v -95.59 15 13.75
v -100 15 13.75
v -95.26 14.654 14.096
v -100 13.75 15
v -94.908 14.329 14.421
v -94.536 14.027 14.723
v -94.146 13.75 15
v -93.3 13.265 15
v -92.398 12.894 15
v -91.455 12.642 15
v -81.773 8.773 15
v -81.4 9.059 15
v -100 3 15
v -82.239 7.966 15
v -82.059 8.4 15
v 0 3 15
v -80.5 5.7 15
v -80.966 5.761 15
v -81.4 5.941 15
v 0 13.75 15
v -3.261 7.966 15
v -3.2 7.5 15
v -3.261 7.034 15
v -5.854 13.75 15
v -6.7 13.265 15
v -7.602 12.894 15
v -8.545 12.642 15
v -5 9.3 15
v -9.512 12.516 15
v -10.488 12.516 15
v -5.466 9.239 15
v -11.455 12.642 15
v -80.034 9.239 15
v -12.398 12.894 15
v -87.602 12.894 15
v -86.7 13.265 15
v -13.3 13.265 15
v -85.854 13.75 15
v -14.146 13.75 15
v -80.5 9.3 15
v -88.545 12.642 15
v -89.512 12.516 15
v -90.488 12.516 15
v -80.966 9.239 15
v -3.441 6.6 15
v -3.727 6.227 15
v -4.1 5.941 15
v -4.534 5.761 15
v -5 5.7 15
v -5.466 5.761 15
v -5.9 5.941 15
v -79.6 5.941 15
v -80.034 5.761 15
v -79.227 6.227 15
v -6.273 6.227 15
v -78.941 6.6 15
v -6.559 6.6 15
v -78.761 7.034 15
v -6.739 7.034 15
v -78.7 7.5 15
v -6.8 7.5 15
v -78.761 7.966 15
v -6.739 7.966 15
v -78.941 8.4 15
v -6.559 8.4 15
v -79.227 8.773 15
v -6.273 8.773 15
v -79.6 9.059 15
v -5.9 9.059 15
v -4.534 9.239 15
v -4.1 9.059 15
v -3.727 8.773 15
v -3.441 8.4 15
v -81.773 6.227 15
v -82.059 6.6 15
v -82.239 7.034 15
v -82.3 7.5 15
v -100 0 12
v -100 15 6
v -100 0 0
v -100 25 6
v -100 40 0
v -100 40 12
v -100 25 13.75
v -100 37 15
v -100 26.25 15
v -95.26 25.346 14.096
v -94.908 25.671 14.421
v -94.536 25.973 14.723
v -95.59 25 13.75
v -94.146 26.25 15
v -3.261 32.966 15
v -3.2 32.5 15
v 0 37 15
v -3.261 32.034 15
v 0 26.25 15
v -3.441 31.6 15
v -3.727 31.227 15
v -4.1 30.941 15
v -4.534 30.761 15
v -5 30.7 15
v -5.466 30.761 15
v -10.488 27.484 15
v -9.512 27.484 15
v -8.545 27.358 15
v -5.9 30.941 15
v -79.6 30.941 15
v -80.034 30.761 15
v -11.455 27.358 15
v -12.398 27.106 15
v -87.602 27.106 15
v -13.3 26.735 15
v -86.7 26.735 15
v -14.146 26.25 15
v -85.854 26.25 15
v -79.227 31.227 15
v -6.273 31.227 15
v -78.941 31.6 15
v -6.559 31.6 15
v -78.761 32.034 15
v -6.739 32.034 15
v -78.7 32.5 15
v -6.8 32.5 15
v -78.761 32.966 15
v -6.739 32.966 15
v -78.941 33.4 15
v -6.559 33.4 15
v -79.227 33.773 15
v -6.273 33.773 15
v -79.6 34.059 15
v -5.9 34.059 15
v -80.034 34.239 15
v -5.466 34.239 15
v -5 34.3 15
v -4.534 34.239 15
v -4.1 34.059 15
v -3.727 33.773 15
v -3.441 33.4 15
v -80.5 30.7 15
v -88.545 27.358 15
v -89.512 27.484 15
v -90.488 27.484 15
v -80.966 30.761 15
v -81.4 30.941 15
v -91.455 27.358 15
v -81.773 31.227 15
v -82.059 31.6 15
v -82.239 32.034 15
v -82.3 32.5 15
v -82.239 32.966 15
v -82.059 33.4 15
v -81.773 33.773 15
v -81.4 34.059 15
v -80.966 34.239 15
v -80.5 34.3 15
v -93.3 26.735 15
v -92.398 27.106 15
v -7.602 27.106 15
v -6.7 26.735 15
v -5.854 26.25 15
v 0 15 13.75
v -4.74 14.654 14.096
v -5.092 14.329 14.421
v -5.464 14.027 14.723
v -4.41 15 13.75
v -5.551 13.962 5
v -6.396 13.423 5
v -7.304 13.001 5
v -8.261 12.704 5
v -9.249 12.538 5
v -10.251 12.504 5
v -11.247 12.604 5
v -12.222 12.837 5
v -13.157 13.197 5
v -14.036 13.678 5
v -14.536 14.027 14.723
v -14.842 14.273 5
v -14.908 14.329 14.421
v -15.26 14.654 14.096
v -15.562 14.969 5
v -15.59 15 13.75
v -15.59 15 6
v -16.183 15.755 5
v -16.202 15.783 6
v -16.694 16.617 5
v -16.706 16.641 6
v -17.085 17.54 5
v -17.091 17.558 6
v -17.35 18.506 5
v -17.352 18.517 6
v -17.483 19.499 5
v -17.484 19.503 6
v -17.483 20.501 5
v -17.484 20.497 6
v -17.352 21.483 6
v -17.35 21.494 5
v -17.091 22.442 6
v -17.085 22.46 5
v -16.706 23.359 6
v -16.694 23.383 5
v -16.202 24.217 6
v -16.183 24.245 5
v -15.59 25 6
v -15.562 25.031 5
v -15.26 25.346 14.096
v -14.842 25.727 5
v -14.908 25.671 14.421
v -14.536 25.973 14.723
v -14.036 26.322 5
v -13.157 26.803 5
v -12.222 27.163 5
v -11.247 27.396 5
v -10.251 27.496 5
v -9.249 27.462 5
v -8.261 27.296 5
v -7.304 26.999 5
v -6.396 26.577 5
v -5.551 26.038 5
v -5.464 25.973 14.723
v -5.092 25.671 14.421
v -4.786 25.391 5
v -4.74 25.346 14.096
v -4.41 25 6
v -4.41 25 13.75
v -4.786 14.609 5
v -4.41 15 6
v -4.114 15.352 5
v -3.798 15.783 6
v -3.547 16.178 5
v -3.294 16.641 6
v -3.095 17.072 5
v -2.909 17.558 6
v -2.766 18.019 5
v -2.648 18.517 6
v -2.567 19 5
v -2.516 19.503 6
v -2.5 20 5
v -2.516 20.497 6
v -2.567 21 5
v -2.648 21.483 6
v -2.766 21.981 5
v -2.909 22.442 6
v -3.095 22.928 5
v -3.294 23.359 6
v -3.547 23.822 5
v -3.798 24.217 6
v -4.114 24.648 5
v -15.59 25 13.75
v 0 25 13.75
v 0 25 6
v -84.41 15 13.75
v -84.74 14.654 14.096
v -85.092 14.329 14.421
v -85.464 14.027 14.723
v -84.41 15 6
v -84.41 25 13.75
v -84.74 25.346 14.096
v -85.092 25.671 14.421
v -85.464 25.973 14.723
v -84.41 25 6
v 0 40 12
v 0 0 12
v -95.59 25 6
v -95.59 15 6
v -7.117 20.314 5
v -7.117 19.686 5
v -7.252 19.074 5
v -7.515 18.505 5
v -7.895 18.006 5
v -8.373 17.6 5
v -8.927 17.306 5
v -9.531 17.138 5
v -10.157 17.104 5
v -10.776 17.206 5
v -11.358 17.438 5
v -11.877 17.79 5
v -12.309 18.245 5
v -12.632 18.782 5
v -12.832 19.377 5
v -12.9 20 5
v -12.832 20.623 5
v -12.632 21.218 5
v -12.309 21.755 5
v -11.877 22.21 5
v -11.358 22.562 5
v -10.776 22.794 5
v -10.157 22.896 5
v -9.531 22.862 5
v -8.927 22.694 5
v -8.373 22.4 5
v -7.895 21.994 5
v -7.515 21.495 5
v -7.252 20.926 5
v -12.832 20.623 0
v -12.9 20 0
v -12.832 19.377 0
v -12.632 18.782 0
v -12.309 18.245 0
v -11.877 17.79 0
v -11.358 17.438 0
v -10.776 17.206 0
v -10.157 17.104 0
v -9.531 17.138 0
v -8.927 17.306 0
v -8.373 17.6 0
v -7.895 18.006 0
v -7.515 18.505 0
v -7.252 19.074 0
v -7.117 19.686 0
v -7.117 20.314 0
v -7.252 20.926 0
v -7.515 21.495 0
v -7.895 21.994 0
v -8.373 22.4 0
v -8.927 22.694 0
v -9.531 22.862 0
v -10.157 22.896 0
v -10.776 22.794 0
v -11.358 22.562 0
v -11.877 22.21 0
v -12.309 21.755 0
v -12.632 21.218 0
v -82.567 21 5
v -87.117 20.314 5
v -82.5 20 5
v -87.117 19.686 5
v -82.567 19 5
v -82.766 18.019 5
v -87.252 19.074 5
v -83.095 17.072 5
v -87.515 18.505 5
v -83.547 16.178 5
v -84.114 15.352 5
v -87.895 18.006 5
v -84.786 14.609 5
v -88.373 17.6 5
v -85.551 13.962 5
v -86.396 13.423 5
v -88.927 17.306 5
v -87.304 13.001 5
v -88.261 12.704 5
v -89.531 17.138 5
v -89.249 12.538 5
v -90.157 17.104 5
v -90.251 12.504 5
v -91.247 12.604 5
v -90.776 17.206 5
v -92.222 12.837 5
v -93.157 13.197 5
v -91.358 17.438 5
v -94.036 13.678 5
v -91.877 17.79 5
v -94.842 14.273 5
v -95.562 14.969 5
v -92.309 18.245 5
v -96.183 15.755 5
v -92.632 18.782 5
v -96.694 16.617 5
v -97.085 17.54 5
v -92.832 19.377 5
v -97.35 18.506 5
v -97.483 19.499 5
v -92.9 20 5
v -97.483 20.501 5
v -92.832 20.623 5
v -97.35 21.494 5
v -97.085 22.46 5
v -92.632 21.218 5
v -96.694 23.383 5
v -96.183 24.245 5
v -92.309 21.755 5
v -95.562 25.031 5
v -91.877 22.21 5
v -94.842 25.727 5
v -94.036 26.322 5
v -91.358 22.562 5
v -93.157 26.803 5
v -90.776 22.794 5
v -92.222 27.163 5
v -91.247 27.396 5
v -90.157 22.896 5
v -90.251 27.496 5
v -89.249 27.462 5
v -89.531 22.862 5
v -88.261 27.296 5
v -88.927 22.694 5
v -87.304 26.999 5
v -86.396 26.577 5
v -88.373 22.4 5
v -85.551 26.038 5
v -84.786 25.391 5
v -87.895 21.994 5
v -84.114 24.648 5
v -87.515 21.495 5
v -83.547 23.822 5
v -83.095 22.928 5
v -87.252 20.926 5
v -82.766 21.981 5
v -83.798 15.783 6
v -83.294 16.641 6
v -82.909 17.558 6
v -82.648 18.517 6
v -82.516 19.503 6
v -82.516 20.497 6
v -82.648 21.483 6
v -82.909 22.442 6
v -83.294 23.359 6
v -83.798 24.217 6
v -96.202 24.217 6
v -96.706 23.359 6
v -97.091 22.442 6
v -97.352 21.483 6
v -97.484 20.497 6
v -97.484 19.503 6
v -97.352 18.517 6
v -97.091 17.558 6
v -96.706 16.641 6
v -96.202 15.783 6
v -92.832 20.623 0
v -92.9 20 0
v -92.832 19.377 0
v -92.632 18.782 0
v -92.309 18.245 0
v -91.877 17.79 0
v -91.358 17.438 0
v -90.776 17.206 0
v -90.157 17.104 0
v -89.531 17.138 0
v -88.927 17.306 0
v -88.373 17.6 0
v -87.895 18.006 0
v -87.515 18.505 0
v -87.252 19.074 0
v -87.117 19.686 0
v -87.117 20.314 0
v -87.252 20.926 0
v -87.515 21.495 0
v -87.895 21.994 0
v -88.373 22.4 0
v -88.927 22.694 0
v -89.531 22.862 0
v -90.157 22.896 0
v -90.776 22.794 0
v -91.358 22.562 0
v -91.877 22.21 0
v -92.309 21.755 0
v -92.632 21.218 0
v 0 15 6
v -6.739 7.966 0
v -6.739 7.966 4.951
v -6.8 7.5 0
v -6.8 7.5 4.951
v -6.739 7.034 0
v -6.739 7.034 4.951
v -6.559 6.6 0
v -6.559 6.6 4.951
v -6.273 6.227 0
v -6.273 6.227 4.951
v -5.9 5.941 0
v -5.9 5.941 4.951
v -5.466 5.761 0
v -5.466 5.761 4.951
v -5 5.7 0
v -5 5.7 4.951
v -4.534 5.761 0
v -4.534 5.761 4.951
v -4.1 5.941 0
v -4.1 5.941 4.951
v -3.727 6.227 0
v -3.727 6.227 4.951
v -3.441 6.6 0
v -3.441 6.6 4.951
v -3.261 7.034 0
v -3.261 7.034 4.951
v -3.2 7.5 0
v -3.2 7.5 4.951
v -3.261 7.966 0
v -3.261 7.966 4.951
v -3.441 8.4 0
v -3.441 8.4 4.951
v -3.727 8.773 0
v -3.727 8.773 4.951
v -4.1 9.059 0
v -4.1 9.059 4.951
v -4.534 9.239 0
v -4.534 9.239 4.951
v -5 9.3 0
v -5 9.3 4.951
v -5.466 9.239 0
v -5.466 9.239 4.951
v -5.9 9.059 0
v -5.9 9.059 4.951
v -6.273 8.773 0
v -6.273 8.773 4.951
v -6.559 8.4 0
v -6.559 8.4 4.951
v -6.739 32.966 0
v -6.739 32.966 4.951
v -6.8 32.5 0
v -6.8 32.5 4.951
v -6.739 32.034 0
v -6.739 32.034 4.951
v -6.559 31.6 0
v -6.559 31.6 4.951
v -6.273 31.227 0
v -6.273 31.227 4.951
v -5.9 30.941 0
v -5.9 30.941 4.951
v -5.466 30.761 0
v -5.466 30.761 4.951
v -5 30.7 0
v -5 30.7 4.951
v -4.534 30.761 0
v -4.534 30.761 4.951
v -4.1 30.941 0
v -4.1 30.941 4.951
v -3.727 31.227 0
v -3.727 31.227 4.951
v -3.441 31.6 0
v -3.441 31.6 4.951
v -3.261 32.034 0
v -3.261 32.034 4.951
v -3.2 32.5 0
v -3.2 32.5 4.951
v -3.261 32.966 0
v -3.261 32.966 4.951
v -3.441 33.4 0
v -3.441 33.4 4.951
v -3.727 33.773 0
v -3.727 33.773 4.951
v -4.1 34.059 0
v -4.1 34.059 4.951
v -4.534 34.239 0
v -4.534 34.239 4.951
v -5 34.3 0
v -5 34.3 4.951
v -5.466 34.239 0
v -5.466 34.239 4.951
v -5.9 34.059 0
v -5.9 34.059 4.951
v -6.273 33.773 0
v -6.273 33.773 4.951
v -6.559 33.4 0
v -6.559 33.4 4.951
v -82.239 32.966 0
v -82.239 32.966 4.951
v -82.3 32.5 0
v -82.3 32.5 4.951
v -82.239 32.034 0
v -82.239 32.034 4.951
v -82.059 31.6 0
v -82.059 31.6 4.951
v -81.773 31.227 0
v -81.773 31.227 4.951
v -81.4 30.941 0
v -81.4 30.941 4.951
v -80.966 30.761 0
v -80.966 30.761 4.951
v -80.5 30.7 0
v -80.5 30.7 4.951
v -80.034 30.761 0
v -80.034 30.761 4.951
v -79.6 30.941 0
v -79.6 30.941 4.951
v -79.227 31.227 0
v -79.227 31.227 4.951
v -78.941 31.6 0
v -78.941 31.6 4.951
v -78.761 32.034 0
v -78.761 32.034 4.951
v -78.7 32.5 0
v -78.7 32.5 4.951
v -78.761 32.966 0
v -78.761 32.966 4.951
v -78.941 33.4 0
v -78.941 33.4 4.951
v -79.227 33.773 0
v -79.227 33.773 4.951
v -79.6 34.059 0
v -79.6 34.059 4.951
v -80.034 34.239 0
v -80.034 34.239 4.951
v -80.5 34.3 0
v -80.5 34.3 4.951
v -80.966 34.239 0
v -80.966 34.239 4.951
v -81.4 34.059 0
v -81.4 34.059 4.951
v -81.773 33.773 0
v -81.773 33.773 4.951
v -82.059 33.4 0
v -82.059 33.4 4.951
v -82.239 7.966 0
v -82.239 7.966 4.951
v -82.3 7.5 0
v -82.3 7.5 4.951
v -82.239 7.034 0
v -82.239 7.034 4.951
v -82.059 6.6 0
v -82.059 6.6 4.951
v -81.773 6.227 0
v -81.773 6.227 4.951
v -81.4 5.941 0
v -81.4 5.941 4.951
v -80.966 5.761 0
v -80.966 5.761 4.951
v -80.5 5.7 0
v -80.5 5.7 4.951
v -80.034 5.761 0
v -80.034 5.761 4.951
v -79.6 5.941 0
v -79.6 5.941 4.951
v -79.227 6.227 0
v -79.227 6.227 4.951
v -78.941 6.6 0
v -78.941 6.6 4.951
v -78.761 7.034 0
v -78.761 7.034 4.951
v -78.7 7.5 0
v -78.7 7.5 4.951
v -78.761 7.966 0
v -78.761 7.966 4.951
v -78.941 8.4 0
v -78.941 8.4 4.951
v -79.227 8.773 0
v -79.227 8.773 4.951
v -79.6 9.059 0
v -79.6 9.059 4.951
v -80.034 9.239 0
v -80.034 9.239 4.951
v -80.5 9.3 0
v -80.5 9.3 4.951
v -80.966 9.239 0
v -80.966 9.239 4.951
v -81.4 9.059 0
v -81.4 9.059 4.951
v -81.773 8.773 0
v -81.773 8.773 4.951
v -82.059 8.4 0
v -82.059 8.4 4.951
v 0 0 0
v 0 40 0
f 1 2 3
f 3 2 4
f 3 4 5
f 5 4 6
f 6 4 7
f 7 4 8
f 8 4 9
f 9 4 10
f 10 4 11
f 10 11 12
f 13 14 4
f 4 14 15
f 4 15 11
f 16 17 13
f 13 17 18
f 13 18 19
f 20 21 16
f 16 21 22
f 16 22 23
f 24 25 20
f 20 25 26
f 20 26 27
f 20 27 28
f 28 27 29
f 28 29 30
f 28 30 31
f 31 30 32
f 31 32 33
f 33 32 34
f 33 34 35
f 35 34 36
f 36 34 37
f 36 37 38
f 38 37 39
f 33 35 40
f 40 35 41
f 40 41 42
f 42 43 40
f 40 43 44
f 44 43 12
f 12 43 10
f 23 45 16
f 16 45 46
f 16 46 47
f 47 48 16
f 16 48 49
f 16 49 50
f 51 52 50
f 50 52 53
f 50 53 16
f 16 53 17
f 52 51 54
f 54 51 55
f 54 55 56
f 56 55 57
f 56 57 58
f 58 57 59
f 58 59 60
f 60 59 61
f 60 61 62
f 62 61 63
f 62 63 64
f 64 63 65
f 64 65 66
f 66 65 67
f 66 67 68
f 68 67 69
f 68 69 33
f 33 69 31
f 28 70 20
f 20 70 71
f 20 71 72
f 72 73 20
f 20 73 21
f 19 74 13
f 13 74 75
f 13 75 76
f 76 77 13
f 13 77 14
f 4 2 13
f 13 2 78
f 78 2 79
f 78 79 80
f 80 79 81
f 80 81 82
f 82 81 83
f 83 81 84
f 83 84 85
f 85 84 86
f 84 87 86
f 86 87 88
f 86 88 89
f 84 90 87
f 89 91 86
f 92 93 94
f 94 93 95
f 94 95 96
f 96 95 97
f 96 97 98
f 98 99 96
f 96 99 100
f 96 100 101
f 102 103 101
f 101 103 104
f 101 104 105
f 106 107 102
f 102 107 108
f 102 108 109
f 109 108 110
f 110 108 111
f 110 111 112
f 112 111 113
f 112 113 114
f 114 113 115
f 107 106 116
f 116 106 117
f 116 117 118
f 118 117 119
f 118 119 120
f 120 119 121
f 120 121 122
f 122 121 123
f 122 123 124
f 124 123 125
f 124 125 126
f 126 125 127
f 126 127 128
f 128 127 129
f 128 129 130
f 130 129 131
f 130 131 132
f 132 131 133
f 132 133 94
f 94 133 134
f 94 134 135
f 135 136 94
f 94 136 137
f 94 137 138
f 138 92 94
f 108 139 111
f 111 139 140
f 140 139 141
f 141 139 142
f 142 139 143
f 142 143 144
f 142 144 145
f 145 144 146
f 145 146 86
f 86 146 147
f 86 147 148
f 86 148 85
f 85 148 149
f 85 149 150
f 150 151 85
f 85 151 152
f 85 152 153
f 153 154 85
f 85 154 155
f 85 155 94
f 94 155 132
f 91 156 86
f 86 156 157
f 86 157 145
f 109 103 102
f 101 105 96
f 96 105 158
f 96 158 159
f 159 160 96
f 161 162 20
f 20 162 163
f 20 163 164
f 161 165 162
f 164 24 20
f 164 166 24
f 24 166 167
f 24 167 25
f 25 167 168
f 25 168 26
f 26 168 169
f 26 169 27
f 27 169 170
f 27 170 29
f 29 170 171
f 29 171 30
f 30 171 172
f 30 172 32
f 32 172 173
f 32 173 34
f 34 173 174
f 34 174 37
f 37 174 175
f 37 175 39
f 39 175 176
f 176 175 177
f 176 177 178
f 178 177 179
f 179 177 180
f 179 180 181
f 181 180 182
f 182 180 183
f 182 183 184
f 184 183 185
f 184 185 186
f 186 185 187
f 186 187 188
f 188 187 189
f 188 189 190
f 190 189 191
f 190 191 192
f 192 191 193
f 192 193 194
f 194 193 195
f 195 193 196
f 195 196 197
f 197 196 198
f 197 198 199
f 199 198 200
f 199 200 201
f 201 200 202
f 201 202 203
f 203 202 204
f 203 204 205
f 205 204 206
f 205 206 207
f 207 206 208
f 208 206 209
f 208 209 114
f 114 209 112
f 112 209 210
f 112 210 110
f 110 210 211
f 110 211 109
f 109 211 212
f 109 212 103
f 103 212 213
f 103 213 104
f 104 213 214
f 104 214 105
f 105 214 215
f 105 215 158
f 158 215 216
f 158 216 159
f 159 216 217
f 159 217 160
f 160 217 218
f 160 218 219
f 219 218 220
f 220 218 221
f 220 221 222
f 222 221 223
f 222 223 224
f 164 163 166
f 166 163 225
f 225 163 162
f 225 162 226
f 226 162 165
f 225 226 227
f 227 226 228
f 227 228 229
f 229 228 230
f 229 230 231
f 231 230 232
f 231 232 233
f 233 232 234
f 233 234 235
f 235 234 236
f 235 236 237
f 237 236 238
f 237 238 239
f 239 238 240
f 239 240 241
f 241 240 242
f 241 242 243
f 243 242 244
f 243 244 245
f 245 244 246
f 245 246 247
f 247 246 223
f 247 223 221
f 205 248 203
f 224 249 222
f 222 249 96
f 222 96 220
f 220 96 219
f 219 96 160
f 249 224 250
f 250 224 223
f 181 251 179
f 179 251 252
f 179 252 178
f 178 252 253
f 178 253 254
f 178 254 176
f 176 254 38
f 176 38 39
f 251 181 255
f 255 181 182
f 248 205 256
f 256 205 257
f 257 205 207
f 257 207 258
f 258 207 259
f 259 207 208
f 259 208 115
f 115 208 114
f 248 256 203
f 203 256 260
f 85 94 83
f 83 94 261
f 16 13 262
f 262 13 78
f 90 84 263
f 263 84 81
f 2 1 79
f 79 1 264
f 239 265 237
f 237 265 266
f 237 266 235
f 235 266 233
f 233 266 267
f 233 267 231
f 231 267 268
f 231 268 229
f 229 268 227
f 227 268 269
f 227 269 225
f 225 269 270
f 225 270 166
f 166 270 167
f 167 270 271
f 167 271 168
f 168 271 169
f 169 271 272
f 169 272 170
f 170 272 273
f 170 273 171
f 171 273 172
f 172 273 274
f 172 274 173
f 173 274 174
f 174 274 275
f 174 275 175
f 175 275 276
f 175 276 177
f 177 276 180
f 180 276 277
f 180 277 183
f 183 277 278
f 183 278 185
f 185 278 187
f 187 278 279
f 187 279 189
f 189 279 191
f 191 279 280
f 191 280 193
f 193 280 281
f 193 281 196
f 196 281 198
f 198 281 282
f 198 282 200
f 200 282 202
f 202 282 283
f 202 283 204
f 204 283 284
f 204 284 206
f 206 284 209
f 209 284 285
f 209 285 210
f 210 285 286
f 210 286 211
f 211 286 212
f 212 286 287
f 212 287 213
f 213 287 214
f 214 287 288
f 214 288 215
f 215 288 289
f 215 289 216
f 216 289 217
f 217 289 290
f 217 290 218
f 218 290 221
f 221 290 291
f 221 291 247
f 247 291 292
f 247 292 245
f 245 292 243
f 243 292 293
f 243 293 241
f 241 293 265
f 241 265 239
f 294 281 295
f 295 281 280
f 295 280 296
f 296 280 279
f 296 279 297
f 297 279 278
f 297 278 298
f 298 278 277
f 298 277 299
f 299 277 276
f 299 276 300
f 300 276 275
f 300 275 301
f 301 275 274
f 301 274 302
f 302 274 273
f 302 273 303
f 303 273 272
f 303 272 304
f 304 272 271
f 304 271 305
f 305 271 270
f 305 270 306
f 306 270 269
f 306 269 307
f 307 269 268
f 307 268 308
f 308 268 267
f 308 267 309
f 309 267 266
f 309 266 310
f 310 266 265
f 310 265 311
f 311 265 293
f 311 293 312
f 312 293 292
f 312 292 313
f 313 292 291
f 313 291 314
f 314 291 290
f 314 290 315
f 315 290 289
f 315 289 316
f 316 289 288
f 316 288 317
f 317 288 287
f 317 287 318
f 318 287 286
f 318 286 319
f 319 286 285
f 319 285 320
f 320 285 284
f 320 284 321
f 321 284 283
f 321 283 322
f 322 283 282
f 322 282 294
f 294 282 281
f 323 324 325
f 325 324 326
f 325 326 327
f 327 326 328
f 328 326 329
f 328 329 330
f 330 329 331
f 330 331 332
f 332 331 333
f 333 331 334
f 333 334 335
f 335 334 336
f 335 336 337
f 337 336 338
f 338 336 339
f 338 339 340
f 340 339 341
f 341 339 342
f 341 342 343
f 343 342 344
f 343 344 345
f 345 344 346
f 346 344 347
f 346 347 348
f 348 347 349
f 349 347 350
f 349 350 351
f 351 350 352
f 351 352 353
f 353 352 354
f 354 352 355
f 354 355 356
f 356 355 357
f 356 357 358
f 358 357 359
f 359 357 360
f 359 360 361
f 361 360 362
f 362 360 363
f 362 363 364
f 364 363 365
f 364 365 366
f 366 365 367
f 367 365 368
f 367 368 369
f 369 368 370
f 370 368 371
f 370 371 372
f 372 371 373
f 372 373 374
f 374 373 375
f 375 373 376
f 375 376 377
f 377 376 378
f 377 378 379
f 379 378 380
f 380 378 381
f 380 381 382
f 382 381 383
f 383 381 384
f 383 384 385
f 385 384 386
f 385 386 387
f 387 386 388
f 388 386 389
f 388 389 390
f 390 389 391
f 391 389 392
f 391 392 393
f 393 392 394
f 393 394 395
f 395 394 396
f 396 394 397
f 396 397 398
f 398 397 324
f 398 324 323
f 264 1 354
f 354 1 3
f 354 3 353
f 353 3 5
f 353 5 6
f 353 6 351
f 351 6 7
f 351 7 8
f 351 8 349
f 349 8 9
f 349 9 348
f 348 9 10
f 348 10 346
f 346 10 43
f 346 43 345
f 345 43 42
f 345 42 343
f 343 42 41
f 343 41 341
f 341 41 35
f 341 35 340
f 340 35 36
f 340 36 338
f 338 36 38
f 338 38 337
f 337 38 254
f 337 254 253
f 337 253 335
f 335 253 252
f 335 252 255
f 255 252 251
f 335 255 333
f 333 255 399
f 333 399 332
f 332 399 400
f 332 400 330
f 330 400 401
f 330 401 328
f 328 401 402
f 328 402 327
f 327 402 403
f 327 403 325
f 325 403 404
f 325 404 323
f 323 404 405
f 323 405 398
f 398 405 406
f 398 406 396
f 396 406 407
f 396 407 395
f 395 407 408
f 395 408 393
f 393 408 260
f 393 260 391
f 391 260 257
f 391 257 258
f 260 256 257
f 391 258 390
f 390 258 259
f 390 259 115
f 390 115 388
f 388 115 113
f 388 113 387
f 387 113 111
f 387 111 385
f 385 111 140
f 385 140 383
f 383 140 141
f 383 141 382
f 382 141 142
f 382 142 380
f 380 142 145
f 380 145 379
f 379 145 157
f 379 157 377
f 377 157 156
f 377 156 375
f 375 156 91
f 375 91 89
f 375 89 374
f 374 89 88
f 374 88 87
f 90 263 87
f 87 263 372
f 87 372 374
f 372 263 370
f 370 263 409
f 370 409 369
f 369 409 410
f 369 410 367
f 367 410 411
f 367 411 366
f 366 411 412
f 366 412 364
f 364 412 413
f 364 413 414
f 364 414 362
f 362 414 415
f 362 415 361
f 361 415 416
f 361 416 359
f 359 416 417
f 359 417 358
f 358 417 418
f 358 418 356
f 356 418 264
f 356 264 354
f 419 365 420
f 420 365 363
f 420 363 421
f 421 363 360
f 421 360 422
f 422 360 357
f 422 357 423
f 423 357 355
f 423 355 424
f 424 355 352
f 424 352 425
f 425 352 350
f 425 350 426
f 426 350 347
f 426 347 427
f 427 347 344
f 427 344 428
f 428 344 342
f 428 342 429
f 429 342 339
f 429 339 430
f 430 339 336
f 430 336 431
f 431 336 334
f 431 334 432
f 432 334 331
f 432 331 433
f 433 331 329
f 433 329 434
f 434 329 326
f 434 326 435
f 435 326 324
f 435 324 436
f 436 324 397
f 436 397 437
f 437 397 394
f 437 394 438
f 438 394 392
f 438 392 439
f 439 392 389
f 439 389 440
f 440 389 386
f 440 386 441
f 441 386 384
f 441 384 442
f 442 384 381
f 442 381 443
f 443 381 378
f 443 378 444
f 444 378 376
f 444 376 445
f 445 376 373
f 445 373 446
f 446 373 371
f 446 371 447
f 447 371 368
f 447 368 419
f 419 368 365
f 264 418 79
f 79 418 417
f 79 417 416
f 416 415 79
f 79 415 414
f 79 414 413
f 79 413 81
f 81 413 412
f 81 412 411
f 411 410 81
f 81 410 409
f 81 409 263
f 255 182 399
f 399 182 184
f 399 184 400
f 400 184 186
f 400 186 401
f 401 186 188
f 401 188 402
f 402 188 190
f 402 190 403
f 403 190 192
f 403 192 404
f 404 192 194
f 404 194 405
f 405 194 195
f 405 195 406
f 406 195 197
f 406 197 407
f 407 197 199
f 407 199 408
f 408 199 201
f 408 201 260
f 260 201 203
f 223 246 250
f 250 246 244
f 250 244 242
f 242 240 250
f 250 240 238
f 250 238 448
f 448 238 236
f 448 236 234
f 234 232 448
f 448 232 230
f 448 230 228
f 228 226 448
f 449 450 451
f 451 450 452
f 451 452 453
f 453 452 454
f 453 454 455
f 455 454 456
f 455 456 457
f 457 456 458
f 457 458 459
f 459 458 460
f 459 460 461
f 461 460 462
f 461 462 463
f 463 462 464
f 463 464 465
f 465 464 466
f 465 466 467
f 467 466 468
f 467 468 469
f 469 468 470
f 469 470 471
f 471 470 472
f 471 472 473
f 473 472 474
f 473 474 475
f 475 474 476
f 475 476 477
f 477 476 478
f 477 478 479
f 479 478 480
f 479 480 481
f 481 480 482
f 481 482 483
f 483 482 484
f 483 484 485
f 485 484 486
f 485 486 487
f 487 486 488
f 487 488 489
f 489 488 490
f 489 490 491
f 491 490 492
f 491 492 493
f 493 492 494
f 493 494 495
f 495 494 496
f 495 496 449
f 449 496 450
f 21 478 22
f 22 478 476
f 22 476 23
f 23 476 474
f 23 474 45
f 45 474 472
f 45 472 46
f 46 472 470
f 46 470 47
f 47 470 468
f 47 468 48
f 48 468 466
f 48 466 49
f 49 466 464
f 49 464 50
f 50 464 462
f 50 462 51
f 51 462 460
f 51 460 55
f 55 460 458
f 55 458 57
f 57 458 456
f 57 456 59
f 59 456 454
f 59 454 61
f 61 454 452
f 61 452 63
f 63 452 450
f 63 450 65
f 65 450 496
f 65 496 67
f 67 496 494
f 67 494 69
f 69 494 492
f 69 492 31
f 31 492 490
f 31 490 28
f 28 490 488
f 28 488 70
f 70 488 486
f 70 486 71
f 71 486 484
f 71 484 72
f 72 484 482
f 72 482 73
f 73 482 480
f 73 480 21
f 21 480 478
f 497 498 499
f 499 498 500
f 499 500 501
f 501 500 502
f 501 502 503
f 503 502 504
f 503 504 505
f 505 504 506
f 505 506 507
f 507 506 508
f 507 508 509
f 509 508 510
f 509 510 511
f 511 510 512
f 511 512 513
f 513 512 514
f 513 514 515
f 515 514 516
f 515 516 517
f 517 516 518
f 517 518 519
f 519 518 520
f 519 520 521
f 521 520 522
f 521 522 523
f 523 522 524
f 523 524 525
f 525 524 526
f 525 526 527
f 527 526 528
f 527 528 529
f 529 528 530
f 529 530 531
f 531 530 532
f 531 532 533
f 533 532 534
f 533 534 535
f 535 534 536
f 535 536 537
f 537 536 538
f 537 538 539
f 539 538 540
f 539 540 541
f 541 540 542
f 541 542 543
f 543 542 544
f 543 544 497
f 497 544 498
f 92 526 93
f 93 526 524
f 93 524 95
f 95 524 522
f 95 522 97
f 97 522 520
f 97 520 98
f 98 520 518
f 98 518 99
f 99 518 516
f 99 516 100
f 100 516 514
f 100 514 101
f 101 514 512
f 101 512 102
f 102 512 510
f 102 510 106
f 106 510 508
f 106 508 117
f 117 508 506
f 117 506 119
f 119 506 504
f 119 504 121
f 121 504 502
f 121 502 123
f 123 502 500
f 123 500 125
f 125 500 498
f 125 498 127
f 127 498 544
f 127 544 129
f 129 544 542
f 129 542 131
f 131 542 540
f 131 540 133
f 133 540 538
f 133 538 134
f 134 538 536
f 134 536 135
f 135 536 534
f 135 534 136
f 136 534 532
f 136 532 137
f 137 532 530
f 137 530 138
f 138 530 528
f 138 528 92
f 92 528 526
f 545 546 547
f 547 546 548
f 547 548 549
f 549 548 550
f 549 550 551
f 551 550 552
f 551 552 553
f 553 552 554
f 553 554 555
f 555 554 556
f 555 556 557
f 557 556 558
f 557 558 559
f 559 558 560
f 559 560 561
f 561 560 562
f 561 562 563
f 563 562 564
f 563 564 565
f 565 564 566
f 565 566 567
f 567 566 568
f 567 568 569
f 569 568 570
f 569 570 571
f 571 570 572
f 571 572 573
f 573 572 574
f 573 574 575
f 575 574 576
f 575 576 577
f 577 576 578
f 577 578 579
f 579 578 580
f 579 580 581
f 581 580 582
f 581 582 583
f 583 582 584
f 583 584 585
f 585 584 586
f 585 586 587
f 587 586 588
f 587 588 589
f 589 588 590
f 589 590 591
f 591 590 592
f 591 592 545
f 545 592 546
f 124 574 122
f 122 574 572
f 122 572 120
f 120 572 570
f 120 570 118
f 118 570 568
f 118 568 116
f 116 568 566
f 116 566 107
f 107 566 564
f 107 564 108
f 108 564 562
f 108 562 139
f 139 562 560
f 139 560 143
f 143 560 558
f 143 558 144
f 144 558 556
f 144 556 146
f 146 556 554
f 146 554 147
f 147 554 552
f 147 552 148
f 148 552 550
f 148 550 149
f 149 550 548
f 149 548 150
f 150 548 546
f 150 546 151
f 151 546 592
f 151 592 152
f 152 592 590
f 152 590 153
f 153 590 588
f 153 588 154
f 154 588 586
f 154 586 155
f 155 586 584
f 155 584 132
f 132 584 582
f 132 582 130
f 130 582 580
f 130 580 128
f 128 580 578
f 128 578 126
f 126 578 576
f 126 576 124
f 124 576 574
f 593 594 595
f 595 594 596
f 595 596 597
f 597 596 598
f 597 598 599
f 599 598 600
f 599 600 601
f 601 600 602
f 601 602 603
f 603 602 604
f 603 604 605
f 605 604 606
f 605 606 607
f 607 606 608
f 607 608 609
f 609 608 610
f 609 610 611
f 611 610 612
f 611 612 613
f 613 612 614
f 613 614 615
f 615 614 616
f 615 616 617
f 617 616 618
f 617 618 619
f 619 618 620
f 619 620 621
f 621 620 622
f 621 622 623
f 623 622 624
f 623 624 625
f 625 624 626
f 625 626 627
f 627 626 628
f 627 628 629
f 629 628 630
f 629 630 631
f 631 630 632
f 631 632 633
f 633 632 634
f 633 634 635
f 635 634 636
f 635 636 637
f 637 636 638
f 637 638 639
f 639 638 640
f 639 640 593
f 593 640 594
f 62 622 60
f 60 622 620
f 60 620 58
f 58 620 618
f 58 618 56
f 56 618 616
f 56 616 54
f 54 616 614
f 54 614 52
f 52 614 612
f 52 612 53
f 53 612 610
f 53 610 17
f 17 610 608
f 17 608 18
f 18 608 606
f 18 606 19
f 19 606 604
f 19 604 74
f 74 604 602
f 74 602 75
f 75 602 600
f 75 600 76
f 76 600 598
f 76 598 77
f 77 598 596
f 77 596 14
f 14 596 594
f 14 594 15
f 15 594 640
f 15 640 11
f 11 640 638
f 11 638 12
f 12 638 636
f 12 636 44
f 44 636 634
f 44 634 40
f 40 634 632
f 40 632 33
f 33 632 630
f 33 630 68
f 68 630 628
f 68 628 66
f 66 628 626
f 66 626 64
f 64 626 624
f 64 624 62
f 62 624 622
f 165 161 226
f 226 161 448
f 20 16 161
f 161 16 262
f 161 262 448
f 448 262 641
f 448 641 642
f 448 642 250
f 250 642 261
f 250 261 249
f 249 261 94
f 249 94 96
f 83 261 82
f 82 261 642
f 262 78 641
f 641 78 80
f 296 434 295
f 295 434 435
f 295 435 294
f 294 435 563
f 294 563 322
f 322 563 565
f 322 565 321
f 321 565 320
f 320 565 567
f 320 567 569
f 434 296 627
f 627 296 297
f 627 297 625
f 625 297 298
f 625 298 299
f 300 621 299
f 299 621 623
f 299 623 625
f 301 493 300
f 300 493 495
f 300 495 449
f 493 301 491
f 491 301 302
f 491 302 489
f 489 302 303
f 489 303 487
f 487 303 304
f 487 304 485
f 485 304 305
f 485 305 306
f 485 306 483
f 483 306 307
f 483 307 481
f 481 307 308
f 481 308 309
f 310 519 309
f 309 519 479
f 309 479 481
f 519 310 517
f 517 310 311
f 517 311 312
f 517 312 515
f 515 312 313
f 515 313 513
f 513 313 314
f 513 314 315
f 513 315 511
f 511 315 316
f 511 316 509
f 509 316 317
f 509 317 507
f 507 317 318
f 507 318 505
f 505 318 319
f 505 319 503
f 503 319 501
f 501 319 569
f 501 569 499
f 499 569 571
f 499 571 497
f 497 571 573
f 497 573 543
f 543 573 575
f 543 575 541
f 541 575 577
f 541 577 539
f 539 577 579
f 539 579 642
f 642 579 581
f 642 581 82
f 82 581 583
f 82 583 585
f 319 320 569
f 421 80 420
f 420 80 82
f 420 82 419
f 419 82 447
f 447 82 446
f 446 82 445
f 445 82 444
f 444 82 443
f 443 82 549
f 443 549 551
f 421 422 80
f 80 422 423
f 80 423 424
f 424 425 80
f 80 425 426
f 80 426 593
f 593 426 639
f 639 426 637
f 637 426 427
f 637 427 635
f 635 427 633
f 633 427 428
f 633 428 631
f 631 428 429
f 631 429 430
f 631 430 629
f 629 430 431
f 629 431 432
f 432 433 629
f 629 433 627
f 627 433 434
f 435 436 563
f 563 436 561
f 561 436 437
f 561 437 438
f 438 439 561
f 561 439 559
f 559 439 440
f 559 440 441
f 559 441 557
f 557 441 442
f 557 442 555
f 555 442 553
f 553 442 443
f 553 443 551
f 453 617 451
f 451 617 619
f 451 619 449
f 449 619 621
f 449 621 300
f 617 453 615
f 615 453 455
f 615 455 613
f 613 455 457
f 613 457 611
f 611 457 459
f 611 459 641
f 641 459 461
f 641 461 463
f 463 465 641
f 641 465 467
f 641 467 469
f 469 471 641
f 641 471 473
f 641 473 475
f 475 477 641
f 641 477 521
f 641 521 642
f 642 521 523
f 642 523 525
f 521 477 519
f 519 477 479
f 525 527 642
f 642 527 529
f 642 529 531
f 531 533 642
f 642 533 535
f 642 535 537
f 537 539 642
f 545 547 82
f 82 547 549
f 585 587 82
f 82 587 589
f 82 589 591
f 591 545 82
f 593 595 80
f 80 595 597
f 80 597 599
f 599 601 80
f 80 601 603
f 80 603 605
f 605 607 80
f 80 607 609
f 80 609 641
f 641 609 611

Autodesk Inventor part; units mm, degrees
ref_plane "YZ Plane" through (0, 0, 0) normal (1, 0, 0) x (0, 1, 0)
ref_plane "XZ Plane" through (0, 0, 0) normal (0, 1, 0) x (-1, 0, 0)
ref_plane "XY Plane" through (0, 0, 0) normal (0, 0, 1) x (1, 0, 0)
sketch "Skizze1" plane through (0, 0, 0) normal (0, 0, 1) x (1, 0, 0)
  line L0 (0, 0) -> (-100, 0)
  line L1 (-100, 0) -> (-100, 40)
  line L2 (-100, 40) -> (0, 40)
  line L3 (0, 40) -> (0, 0)
  dimension "d0" = 100
  dimension "d1" = 40
extrude "Extrusion1" add sketch "Skizze1" along normal blind 15
sketch "Skizze2" plane through (0, 0, 15) normal (0, 0, 1) x (1, 0, 0)
  line L0 (-100, 40) -> (-100, 0) projected
  line L1 (-100, 25) -> (0, 25)
  line L2 (0, 25) -> (0, 15)
  line L3 (0, 15) -> (-100, 15)
  line L4 (-100, 15) -> (-100, 25)
  line L5 (0, 40) -> (-100, 40) projected
  line L6 (-100, 0) -> (0, 0) projected
  line L7 (0, 0) -> (0, 40) projected
  dimension "d4" = 15
  dimension "d5" = 15
extrude "Extrusion2" cut sketch "Skizze2" against normal blind 9 contours L1 L2 L3 L0
sketch "Skizze3" plane through (0, 0, 15) normal (0, 0, 1) x (1, 0, 0)
  line L0 (0, 0) -> (0, 15) projected
  line L1 (-100, 0) -> (0, 0) projected
  line L2 (-100, 25) -> (0, 25) projected
  point P0 (-5, 32.5)
  point P1 (-80.5, 32.5)
  point P2 (-5, 7.5)
  point P3 (-80.5, 7.5)
  dimension "d8" = 75.5
  dimension "d9" = 5
  dimension "d10" = 7.5
  dimension "d11" = 7.5
hole "Bohrung1" at (-5, 32.5, 15) at (-80.5, 32.5, 15) at (-5, 7.5, 15) at (-80.5, 7.5, 15) direction (0, 0, -1) diameter 3.6 end through all clearance for "Flachkopfsenkschraube DIN EN ISO 2009" size "M3" standard "DIN"
sketch "Skizze4" plane through (0, 0, 6) normal (0, 0, 1) x (1, 0, 0)
  line L0 (-100, 15) -> (-100, 25) projected
  line L1 (0, 15) -> (-100, 15) projected
  point P0 (0, 0)
  point P1 (-10, 20)
  point P2 (-90, 20)
  dimension "d19" = 80
  dimension "d20" = 10
  dimension "d21" = 5
hole "Bohrung2" at (-10, 20, 6) at (-90, 20, 6) direction (0, 0, -1) diameter 5.8 end through all counterbore diameter 15 counterbore depth 1 clearance for "Sechskantkopfschraube DIN EN 24017" size "M5" standard "DIN"
hole "Bohrung3" at (-10, 20, 6) at (-90, 20, 6) direction (0, 0, 1) diameter 15 end through all
chamfer "Fase1" distance 3 angle 45 2 edges at (-50, 0, 15) (-50, 40, 15)
chamfer "Fase2" distance 1.25 angle 45 6 edges at (-97.7951, 25, 15) (-2.2049, 25, 15) (-50, 25, 15) (-97.7951, 15, 15) (-2.2049, 15, 15) (-50, 15, 15)
equation "\"d11\" = d10"
properties part number "pcb_x_carriage_addon"
